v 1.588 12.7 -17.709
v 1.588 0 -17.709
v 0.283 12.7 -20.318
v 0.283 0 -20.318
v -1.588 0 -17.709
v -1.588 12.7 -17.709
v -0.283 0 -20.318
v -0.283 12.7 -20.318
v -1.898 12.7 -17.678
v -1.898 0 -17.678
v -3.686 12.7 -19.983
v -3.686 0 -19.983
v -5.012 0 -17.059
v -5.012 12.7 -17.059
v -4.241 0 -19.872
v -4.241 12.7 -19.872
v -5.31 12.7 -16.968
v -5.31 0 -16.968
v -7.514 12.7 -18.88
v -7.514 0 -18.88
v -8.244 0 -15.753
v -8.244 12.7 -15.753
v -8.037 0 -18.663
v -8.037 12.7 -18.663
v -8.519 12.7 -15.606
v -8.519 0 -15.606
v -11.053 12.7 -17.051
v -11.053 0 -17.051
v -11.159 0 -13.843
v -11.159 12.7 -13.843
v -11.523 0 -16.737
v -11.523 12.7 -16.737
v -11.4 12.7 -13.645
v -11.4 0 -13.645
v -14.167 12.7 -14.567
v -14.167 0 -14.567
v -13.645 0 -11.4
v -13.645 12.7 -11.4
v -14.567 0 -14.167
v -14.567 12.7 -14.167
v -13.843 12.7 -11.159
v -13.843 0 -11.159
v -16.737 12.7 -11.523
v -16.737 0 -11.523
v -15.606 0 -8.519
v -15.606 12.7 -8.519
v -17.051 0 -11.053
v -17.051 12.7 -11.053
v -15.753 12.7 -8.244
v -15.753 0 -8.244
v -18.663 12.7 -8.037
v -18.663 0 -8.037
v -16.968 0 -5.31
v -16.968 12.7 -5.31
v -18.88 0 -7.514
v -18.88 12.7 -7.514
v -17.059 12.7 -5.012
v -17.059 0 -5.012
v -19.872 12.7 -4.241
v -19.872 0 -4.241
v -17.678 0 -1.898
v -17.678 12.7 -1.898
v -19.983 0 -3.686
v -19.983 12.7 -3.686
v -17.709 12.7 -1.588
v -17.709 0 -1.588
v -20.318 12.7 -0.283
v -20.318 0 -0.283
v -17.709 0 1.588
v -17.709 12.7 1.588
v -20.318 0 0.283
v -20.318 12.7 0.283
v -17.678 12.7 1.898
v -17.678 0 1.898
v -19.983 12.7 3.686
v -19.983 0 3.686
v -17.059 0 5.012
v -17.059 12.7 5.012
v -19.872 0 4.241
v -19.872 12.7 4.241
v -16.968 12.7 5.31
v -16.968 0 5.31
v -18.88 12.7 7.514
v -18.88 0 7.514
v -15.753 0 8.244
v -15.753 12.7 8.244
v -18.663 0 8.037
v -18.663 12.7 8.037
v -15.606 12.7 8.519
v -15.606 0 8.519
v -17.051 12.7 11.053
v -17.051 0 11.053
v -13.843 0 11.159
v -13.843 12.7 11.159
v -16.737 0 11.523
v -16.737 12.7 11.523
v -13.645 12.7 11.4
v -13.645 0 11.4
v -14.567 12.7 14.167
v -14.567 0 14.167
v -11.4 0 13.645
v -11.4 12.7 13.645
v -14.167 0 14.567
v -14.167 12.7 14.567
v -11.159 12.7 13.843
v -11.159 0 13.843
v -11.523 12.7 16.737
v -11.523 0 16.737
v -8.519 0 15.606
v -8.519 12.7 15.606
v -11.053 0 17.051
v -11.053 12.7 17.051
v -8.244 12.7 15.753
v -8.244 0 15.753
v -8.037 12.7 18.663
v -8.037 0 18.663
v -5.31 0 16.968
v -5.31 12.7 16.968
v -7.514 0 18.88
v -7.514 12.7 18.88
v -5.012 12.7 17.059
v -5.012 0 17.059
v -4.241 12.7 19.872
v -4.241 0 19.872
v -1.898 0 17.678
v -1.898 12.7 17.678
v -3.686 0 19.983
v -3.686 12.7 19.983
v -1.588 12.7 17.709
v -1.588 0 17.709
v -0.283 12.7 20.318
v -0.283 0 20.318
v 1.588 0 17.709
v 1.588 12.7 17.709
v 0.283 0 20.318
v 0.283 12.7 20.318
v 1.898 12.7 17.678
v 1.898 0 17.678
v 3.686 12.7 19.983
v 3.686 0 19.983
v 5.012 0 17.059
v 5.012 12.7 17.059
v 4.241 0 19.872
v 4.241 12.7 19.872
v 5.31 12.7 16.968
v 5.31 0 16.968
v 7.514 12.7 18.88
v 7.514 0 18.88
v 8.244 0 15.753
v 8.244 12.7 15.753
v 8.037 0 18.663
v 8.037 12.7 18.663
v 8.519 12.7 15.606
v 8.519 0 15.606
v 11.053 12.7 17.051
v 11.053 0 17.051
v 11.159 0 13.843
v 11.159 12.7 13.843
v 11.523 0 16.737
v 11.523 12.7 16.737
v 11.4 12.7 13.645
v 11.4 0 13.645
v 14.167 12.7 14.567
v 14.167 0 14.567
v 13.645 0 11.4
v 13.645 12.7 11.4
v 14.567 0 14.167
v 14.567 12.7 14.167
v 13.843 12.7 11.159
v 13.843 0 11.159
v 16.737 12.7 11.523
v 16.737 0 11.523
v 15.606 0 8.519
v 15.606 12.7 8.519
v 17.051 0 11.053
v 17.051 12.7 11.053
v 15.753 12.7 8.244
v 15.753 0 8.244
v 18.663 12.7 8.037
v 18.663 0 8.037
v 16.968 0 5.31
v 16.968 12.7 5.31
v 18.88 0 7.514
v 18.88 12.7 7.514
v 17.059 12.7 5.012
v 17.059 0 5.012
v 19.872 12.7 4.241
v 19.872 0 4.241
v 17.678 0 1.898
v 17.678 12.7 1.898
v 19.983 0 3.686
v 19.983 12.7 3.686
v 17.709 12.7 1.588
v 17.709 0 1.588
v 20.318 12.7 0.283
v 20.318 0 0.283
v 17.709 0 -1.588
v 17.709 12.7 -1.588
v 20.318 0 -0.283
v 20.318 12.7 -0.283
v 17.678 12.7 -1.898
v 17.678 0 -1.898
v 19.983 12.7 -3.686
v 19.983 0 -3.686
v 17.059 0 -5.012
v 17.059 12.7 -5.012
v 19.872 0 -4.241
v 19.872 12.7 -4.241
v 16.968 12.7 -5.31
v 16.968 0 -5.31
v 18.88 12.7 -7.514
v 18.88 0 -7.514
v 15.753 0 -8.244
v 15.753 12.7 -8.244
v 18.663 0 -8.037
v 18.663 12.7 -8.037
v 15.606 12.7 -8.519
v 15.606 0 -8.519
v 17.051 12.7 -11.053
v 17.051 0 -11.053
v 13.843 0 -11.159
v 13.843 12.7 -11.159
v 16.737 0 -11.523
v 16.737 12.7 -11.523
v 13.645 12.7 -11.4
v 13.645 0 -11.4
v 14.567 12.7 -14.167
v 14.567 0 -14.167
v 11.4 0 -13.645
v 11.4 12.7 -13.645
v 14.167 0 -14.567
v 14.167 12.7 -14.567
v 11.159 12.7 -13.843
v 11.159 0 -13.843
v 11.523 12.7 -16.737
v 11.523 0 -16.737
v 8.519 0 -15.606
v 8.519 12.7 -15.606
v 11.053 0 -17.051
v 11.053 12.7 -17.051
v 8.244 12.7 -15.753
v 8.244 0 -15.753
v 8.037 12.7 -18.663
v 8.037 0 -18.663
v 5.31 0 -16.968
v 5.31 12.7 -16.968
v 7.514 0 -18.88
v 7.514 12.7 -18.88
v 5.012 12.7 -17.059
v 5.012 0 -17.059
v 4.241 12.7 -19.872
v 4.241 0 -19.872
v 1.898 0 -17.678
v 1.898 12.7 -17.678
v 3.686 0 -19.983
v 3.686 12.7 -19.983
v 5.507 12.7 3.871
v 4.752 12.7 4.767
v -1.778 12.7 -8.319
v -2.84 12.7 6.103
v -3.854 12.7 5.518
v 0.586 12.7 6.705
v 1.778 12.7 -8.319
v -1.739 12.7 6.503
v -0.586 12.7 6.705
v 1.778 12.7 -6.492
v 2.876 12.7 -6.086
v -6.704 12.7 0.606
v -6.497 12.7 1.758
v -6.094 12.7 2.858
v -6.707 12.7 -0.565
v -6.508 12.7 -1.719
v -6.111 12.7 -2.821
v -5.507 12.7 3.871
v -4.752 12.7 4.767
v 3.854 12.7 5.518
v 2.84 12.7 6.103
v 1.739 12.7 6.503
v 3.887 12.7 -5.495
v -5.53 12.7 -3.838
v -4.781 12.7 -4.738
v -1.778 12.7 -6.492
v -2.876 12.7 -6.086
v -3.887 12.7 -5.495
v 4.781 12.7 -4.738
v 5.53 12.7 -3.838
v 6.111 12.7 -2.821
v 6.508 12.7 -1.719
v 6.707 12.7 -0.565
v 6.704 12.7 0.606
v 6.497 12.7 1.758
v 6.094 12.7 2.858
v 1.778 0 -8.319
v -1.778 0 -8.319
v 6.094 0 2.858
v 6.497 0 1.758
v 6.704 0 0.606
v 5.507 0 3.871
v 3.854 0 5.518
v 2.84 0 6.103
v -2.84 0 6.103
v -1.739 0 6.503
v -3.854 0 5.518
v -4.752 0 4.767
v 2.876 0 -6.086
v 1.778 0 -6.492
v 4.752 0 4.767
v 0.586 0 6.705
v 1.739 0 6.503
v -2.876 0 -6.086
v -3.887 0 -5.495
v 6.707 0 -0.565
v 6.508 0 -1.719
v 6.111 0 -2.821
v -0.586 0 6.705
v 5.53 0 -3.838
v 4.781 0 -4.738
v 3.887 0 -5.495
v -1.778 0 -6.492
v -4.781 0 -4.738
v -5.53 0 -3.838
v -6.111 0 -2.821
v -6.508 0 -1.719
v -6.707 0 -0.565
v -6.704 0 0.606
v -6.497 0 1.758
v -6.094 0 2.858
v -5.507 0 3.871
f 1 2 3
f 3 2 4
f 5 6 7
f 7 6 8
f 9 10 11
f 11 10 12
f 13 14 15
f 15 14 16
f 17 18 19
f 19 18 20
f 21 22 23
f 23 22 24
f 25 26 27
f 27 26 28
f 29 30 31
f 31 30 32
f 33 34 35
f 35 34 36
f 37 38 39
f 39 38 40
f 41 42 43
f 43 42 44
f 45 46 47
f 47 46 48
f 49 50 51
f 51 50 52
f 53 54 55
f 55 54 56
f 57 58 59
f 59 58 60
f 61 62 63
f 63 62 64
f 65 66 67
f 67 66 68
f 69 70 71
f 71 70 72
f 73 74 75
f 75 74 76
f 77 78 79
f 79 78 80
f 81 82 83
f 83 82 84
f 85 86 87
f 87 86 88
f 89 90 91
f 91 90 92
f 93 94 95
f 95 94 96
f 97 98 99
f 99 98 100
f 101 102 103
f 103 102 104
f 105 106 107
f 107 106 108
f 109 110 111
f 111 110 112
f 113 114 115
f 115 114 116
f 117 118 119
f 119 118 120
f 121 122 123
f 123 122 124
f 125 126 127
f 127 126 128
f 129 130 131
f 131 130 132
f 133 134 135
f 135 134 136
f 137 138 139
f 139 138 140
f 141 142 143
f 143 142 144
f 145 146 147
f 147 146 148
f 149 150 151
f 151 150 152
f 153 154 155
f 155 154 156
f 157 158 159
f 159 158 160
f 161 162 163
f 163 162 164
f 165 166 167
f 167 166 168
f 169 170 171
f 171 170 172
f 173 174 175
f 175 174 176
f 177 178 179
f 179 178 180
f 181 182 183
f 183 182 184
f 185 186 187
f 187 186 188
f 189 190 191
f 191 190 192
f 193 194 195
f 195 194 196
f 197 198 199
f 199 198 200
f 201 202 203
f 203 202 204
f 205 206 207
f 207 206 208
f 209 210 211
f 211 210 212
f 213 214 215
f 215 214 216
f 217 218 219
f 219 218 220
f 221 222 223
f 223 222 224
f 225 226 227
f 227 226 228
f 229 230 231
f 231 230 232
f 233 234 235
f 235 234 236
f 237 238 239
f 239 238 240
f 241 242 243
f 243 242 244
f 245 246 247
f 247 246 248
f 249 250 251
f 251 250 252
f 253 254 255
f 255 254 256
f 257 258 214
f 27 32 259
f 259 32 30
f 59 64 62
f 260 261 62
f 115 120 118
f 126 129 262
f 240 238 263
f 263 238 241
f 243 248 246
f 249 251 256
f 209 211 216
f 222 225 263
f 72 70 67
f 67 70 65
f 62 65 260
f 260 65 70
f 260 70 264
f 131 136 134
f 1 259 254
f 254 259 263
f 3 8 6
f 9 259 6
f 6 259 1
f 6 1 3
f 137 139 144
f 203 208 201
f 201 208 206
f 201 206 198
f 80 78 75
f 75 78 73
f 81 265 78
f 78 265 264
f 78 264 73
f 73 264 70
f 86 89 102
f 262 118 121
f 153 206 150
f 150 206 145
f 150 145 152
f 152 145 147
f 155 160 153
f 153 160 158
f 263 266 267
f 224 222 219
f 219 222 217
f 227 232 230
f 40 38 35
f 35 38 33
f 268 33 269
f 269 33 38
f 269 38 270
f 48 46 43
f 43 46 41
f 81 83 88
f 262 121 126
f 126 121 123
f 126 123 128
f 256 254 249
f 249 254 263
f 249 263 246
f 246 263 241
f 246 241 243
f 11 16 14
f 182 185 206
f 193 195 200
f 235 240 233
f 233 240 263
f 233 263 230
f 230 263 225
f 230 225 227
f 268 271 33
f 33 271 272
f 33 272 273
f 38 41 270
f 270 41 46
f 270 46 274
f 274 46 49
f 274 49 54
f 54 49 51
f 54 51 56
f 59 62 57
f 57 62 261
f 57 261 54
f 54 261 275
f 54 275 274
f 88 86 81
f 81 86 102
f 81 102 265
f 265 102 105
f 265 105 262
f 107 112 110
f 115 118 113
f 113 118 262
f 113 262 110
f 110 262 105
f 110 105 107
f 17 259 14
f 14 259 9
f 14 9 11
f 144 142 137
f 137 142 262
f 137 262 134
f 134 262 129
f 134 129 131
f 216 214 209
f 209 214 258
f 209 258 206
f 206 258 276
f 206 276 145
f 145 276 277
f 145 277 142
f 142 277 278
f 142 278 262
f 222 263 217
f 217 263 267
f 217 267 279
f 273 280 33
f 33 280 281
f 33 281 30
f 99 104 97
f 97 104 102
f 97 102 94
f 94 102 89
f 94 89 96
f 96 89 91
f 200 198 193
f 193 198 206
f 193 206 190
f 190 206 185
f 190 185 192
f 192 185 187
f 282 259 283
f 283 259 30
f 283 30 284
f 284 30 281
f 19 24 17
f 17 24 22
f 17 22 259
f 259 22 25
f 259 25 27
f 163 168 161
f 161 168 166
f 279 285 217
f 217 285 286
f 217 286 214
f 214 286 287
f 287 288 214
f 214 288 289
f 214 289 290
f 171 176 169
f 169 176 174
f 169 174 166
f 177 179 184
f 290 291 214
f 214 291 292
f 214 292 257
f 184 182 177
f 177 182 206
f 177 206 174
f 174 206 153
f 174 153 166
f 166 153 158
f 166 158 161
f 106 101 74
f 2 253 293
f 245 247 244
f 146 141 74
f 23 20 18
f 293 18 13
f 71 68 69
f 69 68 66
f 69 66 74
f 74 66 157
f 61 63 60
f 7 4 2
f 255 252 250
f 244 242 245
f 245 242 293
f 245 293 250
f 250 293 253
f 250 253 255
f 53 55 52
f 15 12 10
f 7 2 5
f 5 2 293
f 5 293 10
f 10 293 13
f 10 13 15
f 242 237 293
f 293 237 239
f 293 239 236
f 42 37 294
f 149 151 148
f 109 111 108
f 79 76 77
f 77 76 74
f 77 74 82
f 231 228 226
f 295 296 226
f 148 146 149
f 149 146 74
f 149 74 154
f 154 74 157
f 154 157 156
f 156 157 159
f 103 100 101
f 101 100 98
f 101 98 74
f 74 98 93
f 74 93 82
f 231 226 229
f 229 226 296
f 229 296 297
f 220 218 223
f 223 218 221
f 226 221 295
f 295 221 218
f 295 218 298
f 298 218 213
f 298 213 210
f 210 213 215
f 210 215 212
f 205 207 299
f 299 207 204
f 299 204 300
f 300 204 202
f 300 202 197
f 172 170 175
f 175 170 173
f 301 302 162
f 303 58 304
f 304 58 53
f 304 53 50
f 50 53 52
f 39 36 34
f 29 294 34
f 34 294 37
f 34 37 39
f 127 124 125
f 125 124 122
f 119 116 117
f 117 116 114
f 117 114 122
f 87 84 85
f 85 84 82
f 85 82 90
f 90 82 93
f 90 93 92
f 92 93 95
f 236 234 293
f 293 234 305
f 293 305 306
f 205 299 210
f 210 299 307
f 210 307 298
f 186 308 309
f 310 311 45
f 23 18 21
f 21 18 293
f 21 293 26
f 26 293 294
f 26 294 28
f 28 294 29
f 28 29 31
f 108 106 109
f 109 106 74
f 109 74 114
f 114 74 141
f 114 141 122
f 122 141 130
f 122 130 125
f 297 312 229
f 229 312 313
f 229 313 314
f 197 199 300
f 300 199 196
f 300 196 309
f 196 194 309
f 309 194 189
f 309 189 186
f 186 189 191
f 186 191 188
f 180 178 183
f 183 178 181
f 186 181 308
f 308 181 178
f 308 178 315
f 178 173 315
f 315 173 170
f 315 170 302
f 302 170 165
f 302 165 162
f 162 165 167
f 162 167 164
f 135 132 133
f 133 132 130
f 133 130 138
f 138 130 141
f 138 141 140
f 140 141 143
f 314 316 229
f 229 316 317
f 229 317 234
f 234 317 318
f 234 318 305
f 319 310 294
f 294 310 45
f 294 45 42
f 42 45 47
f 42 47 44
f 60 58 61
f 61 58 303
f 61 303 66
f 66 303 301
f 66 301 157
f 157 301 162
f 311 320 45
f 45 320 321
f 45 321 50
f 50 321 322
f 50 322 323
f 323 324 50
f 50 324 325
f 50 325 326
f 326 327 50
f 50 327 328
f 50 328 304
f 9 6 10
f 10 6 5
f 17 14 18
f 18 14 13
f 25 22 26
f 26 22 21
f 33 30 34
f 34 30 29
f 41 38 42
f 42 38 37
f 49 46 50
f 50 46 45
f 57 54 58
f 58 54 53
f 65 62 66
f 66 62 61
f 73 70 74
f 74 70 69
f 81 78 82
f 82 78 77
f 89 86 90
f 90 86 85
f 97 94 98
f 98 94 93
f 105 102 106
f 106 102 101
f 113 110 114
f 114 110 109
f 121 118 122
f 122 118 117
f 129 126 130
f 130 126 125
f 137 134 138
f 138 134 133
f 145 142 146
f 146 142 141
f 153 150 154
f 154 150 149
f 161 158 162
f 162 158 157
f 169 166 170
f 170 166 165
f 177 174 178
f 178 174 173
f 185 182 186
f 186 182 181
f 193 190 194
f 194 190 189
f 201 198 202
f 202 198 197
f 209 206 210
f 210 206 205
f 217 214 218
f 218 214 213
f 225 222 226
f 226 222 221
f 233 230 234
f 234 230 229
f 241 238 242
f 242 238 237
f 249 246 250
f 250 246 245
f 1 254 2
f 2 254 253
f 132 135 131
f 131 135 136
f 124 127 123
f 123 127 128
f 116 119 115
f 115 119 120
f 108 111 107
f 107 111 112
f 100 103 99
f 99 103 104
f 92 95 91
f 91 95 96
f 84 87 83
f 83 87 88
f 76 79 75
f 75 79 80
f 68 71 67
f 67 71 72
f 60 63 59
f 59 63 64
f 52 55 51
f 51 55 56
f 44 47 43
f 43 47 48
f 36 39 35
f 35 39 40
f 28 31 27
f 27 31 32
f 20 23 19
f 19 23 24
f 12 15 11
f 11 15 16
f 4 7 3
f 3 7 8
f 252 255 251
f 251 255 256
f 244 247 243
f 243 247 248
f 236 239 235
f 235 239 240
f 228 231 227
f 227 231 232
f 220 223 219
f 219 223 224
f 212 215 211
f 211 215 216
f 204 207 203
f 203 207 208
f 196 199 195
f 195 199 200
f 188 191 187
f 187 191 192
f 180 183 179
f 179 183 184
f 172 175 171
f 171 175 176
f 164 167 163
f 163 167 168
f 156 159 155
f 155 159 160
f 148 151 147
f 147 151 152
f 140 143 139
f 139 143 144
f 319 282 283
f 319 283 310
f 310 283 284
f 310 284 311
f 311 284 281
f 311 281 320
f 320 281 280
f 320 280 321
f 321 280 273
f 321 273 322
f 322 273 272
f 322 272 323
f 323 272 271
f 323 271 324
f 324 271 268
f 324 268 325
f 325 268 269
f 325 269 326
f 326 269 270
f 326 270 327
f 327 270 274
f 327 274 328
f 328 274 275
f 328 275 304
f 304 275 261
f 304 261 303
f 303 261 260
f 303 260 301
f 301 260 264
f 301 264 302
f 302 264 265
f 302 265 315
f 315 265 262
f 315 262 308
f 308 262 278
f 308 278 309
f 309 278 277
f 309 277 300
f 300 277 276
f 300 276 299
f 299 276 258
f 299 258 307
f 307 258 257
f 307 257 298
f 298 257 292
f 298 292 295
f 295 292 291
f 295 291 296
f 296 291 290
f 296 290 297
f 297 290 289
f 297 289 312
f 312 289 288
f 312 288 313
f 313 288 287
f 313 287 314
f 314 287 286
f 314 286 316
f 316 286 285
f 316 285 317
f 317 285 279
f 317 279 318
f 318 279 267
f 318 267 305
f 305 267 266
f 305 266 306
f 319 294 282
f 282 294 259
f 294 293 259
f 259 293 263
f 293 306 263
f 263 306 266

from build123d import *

# Parameters (mm, degrees)
BOSS_EXTRUDE1_DEPTH = 12.7
SKETCH2_OUTSIDE_W   = 55.852
SKETCH2_OUTSIDE_H   = 55.852
SKETCH2_OUTSIDE_R   = 20.32
CUT_EXTRUDE1_DEPTH  = 33.149212754
CUT_EXTRUDE3_DEPTH  = 32.418064867


with BuildPart() as part:
    # Sketch1 → Boss-Extrude1 (new body)
    with BuildSketch(Plane(origin=(0, 0, 0), x_dir=(1, 0, 0), z_dir=(0, 1, 0))):
        with BuildLine():
            Line((0, 20.883987655), (-1.5875, 17.708987655))
            ThreePointArc((-1.5875, 17.708987655), (-1.742744755, 17.69438444), (-1.897855471, 17.678420309))
            Line((-1.897855471, 17.678420309), (-4.074263877, 20.482707688))
            Line((-4.074263877, 20.482707688), (-5.011848737, 17.059008536))
            ThreePointArc((-5.011848737, 17.059008536), (-5.161261562, 17.014399169), (-5.310277422, 16.968481184))
            Line((-5.310277422, 16.968481184), (-7.991956077, 19.294288751))
            Line((-7.991956077, 19.294288751), (-8.243594937, 15.753461287))
            ThreePointArc((-8.243594937, 15.753461287), (-8.381433981, 15.68056008), (-8.518628388, 15.606452844))
            Line((-8.518628388, 15.606452844), (-11.602521888, 17.364401118))
            Line((-11.602521888, 17.364401118), (-11.158544407, 13.842517355))
            ThreePointArc((-11.158544407, 13.842517355), (-11.279512592, 13.744125861), (-11.399613243, 13.644677274))
            Line((-11.399613243, 13.644677274), (-14.767209289, 14.767209289))
            Line((-14.767209289, 14.767209289), (-13.644677274, 11.399613243))
            ThreePointArc((-13.644677274, 11.399613243), (-13.744125861, 11.279512592), (-13.842517355, 11.158544407))
            Line((-13.842517355, 11.158544407), (-17.364401118, 11.602521888))
            Line((-17.364401118, 11.602521888), (-15.606452844, 8.518628388))
            ThreePointArc((-15.606452844, 8.518628388), (-15.68056008, 8.381433981), (-15.753461287, 8.243594937))
            Line((-15.753461287, 8.243594937), (-19.294288751, 7.991956077))
            Line((-19.294288751, 7.991956077), (-16.968481184, 5.310277422))
            ThreePointArc((-16.968481184, 5.310277422), (-17.014399169, 5.161261562), (-17.059008536, 5.011848737))
            Line((-17.059008536, 5.011848737), (-20.482707688, 4.074263877))
            Line((-20.482707688, 4.074263877), (-17.678420309, 1.897855471))
            ThreePointArc((-17.678420309, 1.897855471), (-17.69438444, 1.742744755), (-17.708987655, 1.5875))
            Line((-17.708987655, 1.5875), (-20.883987655, 0))
            Line((-20.883987655, 0), (-17.708987655, -1.5875))
            ThreePointArc((-17.708987655, -1.5875), (-17.69438444, -1.742744755), (-17.678420309, -1.897855471))
            Line((-17.678420309, -1.897855471), (-20.482707688, -4.074263877))
            Line((-20.482707688, -4.074263877), (-17.059008536, -5.011848737))
            ThreePointArc((-17.059008536, -5.011848737), (-17.014399169, -5.161261562), (-16.968481184, -5.310277422))
            Line((-16.968481184, -5.310277422), (-19.294288751, -7.991956077))
            Line((-19.294288751, -7.991956077), (-15.753461287, -8.243594937))
            ThreePointArc((-15.753461287, -8.243594937), (-15.68056008, -8.381433981), (-15.606452844, -8.518628388))
            Line((-15.606452844, -8.518628388), (-17.364401118, -11.602521888))
            Line((-17.364401118, -11.602521888), (-13.842517355, -11.158544407))
            ThreePointArc((-13.842517355, -11.158544407), (-13.744125861, -11.279512592), (-13.644677274, -11.399613243))
            Line((-13.644677274, -11.399613243), (-14.767209289, -14.767209289))
            Line((-14.767209289, -14.767209289), (-11.399613243, -13.644677274))
            ThreePointArc((-11.399613243, -13.644677274), (-11.279512592, -13.744125861), (-11.158544407, -13.842517355))
            Line((-11.158544407, -13.842517355), (-11.602521888, -17.364401118))
            Line((-11.602521888, -17.364401118), (-8.518628388, -15.606452844))
            ThreePointArc((-8.518628388, -15.606452844), (-8.381433981, -15.68056008), (-8.243594937, -15.753461287))
            Line((-8.243594937, -15.753461287), (-7.991956077, -19.294288751))
            Line((-7.991956077, -19.294288751), (-5.310277422, -16.968481184))
            ThreePointArc((-5.310277422, -16.968481184), (-5.161261562, -17.014399169), (-5.011848737, -17.059008536))
            Line((-5.011848737, -17.059008536), (-4.074263877, -20.482707688))
            Line((-4.074263877, -20.482707688), (-1.897855471, -17.678420309))
            ThreePointArc((-1.897855471, -17.678420309), (-1.742744755, -17.69438444), (-1.5875, -17.708987655))
            Line((-1.5875, -17.708987655), (0, -20.883987655))
            Line((0, -20.883987655), (1.5875, -17.708987655))
            ThreePointArc((1.5875, -17.708987655), (1.742744755, -17.69438444), (1.897855471, -17.678420309))
            Line((1.897855471, -17.678420309), (4.074263877, -20.482707688))
            Line((4.074263877, -20.482707688), (5.011848737, -17.059008536))
            ThreePointArc((5.011848737, -17.059008536), (5.161261562, -17.014399169), (5.310277422, -16.968481184))
            Line((5.310277422, -16.968481184), (7.991956077, -19.294288751))
            Line((7.991956077, -19.294288751), (8.243594937, -15.753461287))
            ThreePointArc((8.243594937, -15.753461287), (8.381433981, -15.68056008), (8.518628388, -15.606452844))
            Line((8.518628388, -15.606452844), (11.602521888, -17.364401118))
            Line((11.602521888, -17.364401118), (11.158544407, -13.842517355))
            ThreePointArc((11.158544407, -13.842517355), (11.279512592, -13.744125861), (11.399613243, -13.644677274))
            Line((11.399613243, -13.644677274), (14.767209289, -14.767209289))
            Line((14.767209289, -14.767209289), (13.644677274, -11.399613243))
            ThreePointArc((13.644677274, -11.399613243), (13.744125861, -11.279512592), (13.842517355, -11.158544407))
            Line((13.842517355, -11.158544407), (17.364401118, -11.602521888))
            Line((17.364401118, -11.602521888), (15.606452844, -8.518628388))
            ThreePointArc((15.606452844, -8.518628388), (15.68056008, -8.381433981), (15.753461287, -8.243594937))
            Line((15.753461287, -8.243594937), (19.294288751, -7.991956077))
            Line((19.294288751, -7.991956077), (16.968481184, -5.310277422))
            ThreePointArc((16.968481184, -5.310277422), (17.014399169, -5.161261562), (17.059008536, -5.011848737))
            Line((17.059008536, -5.011848737), (20.482707688, -4.074263877))
            Line((20.482707688, -4.074263877), (17.678420309, -1.897855471))
            ThreePointArc((17.678420309, -1.897855471), (17.69438444, -1.742744755), (17.708987655, -1.5875))
            Line((17.708987655, -1.5875), (20.883987655, 0))
            Line((20.883987655, 0), (17.708987655, 1.5875))
            ThreePointArc((17.708987655, 1.5875), (17.69438444, 1.742744755), (17.678420309, 1.897855471))
            Line((17.678420309, 1.897855471), (20.482707688, 4.074263877))
            Line((20.482707688, 4.074263877), (17.059008536, 5.011848737))
            ThreePointArc((17.059008536, 5.011848737), (17.014399169, 5.161261562), (16.968481184, 5.310277422))
            Line((16.968481184, 5.310277422), (19.294288751, 7.991956077))
            Line((19.294288751, 7.991956077), (15.753461287, 8.243594937))
            ThreePointArc((15.753461287, 8.243594937), (15.68056008, 8.381433981), (15.606452844, 8.518628388))
            Line((15.606452844, 8.518628388), (17.364401118, 11.602521888))
            Line((17.364401118, 11.602521888), (13.842517355, 11.158544407))
            ThreePointArc((13.842517355, 11.158544407), (13.744125861, 11.279512592), (13.644677274, 11.399613243))
            Line((13.644677274, 11.399613243), (14.767209289, 14.767209289))
            Line((14.767209289, 14.767209289), (11.399613243, 13.644677274))
            ThreePointArc((11.399613243, 13.644677274), (11.279512592, 13.744125861), (11.158544407, 13.842517355))
            Line((11.158544407, 13.842517355), (11.602521888, 17.364401118))
            Line((11.602521888, 17.364401118), (8.518628388, 15.606452844))
            ThreePointArc((8.518628388, 15.606452844), (8.381433981, 15.68056008), (8.243594937, 15.753461287))
            Line((8.243594937, 15.753461287), (7.991956077, 19.294288751))
            Line((7.991956077, 19.294288751), (5.310277422, 16.968481184))
            ThreePointArc((5.310277422, 16.968481184), (5.161261562, 17.014399169), (5.011848737, 17.059008536))
            Line((5.011848737, 17.059008536), (4.074263877, 20.482707688))
            Line((4.074263877, 20.482707688), (1.897855471, 17.678420309))
            ThreePointArc((1.897855471, 17.678420309), (1.742744755, 17.69438444), (1.5875, 17.708987655))
            Line((1.5875, 17.708987655), (0, 20.883987655))
        make_face()
    extrude(amount=BOSS_EXTRUDE1_DEPTH)

    # Sketch2 outside → Cut-Extrude1 (cut, through all)
    with BuildSketch(Plane(origin=(0, 12.7, 0), x_dir=(1, 0, 0), z_dir=(0, 1, 0))):
        Rectangle(SKETCH2_OUTSIDE_W, SKETCH2_OUTSIDE_H)
        Circle(SKETCH2_OUTSIDE_R, mode=Mode.SUBTRACT)
    extrude(amount=-CUT_EXTRUDE1_DEPTH, mode=Mode.SUBTRACT)

    # Sketch3 → Cut-Extrude3 (cut, through all)
    with BuildSketch(Plane(origin=(0, 12.7, 0), x_dir=(1, 0, 0), z_dir=(0, 1, 0))):
        with BuildLine():
            ThreePointArc((1.778, 6.491923983), (0, 6.731), (-1.778, 6.491923983))
            Line((-1.778, 6.491923983), (-1.778, 5.1435))
            Line((-1.778, 5.1435), (1.778, 5.1435))
            Line((1.778, 5.1435), (1.778, 6.491923983))
        make_face()
        with BuildLine():
            Line((-1.778, 5.1435), (-1.778, 6.491923983))
            ThreePointArc((-1.778, 6.491923983), (-4.082808041, -5.351358659), (6.731, 0))
            ThreePointArc((6.731, 0), (5.351358659, 4.082808041), (1.778, 6.491923983))
            Line((1.778, 6.491923983), (1.778, 5.1435))
            Line((1.778, 5.1435), (-1.778, 5.1435))
        make_face()
        with BuildLine():
            Line((1.778, 8.3185), (-1.778, 8.3185))
            Line((-1.778, 8.3185), (-1.778, 6.491923983))
            ThreePointArc((-1.778, 6.491923983), (0, 6.731), (1.778, 6.491923983))
            Line((1.778, 6.491923983), (1.778, 8.3185))
        make_face()
    extrude(amount=-CUT_EXTRUDE3_DEPTH, mode=Mode.SUBTRACT)


solid = part.part
